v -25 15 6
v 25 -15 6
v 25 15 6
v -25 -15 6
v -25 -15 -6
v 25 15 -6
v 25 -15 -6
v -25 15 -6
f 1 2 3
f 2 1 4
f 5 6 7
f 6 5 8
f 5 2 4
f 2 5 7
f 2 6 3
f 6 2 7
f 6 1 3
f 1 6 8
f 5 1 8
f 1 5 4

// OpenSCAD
// Parameters for the rectangular plate
plate_length = 50;  // Length of the plate
plate_width = 30;   // Width of the plate
plate_thickness = 12; // Total thickness of the plate (merged from 6 layers)

// Function to create a single rectangular plate
module rectangular_plate() {
    cube([plate_length, plate_width, plate_thickness], center = true);
}

// Create the single solid rectangular plate
rectangular_plate();
